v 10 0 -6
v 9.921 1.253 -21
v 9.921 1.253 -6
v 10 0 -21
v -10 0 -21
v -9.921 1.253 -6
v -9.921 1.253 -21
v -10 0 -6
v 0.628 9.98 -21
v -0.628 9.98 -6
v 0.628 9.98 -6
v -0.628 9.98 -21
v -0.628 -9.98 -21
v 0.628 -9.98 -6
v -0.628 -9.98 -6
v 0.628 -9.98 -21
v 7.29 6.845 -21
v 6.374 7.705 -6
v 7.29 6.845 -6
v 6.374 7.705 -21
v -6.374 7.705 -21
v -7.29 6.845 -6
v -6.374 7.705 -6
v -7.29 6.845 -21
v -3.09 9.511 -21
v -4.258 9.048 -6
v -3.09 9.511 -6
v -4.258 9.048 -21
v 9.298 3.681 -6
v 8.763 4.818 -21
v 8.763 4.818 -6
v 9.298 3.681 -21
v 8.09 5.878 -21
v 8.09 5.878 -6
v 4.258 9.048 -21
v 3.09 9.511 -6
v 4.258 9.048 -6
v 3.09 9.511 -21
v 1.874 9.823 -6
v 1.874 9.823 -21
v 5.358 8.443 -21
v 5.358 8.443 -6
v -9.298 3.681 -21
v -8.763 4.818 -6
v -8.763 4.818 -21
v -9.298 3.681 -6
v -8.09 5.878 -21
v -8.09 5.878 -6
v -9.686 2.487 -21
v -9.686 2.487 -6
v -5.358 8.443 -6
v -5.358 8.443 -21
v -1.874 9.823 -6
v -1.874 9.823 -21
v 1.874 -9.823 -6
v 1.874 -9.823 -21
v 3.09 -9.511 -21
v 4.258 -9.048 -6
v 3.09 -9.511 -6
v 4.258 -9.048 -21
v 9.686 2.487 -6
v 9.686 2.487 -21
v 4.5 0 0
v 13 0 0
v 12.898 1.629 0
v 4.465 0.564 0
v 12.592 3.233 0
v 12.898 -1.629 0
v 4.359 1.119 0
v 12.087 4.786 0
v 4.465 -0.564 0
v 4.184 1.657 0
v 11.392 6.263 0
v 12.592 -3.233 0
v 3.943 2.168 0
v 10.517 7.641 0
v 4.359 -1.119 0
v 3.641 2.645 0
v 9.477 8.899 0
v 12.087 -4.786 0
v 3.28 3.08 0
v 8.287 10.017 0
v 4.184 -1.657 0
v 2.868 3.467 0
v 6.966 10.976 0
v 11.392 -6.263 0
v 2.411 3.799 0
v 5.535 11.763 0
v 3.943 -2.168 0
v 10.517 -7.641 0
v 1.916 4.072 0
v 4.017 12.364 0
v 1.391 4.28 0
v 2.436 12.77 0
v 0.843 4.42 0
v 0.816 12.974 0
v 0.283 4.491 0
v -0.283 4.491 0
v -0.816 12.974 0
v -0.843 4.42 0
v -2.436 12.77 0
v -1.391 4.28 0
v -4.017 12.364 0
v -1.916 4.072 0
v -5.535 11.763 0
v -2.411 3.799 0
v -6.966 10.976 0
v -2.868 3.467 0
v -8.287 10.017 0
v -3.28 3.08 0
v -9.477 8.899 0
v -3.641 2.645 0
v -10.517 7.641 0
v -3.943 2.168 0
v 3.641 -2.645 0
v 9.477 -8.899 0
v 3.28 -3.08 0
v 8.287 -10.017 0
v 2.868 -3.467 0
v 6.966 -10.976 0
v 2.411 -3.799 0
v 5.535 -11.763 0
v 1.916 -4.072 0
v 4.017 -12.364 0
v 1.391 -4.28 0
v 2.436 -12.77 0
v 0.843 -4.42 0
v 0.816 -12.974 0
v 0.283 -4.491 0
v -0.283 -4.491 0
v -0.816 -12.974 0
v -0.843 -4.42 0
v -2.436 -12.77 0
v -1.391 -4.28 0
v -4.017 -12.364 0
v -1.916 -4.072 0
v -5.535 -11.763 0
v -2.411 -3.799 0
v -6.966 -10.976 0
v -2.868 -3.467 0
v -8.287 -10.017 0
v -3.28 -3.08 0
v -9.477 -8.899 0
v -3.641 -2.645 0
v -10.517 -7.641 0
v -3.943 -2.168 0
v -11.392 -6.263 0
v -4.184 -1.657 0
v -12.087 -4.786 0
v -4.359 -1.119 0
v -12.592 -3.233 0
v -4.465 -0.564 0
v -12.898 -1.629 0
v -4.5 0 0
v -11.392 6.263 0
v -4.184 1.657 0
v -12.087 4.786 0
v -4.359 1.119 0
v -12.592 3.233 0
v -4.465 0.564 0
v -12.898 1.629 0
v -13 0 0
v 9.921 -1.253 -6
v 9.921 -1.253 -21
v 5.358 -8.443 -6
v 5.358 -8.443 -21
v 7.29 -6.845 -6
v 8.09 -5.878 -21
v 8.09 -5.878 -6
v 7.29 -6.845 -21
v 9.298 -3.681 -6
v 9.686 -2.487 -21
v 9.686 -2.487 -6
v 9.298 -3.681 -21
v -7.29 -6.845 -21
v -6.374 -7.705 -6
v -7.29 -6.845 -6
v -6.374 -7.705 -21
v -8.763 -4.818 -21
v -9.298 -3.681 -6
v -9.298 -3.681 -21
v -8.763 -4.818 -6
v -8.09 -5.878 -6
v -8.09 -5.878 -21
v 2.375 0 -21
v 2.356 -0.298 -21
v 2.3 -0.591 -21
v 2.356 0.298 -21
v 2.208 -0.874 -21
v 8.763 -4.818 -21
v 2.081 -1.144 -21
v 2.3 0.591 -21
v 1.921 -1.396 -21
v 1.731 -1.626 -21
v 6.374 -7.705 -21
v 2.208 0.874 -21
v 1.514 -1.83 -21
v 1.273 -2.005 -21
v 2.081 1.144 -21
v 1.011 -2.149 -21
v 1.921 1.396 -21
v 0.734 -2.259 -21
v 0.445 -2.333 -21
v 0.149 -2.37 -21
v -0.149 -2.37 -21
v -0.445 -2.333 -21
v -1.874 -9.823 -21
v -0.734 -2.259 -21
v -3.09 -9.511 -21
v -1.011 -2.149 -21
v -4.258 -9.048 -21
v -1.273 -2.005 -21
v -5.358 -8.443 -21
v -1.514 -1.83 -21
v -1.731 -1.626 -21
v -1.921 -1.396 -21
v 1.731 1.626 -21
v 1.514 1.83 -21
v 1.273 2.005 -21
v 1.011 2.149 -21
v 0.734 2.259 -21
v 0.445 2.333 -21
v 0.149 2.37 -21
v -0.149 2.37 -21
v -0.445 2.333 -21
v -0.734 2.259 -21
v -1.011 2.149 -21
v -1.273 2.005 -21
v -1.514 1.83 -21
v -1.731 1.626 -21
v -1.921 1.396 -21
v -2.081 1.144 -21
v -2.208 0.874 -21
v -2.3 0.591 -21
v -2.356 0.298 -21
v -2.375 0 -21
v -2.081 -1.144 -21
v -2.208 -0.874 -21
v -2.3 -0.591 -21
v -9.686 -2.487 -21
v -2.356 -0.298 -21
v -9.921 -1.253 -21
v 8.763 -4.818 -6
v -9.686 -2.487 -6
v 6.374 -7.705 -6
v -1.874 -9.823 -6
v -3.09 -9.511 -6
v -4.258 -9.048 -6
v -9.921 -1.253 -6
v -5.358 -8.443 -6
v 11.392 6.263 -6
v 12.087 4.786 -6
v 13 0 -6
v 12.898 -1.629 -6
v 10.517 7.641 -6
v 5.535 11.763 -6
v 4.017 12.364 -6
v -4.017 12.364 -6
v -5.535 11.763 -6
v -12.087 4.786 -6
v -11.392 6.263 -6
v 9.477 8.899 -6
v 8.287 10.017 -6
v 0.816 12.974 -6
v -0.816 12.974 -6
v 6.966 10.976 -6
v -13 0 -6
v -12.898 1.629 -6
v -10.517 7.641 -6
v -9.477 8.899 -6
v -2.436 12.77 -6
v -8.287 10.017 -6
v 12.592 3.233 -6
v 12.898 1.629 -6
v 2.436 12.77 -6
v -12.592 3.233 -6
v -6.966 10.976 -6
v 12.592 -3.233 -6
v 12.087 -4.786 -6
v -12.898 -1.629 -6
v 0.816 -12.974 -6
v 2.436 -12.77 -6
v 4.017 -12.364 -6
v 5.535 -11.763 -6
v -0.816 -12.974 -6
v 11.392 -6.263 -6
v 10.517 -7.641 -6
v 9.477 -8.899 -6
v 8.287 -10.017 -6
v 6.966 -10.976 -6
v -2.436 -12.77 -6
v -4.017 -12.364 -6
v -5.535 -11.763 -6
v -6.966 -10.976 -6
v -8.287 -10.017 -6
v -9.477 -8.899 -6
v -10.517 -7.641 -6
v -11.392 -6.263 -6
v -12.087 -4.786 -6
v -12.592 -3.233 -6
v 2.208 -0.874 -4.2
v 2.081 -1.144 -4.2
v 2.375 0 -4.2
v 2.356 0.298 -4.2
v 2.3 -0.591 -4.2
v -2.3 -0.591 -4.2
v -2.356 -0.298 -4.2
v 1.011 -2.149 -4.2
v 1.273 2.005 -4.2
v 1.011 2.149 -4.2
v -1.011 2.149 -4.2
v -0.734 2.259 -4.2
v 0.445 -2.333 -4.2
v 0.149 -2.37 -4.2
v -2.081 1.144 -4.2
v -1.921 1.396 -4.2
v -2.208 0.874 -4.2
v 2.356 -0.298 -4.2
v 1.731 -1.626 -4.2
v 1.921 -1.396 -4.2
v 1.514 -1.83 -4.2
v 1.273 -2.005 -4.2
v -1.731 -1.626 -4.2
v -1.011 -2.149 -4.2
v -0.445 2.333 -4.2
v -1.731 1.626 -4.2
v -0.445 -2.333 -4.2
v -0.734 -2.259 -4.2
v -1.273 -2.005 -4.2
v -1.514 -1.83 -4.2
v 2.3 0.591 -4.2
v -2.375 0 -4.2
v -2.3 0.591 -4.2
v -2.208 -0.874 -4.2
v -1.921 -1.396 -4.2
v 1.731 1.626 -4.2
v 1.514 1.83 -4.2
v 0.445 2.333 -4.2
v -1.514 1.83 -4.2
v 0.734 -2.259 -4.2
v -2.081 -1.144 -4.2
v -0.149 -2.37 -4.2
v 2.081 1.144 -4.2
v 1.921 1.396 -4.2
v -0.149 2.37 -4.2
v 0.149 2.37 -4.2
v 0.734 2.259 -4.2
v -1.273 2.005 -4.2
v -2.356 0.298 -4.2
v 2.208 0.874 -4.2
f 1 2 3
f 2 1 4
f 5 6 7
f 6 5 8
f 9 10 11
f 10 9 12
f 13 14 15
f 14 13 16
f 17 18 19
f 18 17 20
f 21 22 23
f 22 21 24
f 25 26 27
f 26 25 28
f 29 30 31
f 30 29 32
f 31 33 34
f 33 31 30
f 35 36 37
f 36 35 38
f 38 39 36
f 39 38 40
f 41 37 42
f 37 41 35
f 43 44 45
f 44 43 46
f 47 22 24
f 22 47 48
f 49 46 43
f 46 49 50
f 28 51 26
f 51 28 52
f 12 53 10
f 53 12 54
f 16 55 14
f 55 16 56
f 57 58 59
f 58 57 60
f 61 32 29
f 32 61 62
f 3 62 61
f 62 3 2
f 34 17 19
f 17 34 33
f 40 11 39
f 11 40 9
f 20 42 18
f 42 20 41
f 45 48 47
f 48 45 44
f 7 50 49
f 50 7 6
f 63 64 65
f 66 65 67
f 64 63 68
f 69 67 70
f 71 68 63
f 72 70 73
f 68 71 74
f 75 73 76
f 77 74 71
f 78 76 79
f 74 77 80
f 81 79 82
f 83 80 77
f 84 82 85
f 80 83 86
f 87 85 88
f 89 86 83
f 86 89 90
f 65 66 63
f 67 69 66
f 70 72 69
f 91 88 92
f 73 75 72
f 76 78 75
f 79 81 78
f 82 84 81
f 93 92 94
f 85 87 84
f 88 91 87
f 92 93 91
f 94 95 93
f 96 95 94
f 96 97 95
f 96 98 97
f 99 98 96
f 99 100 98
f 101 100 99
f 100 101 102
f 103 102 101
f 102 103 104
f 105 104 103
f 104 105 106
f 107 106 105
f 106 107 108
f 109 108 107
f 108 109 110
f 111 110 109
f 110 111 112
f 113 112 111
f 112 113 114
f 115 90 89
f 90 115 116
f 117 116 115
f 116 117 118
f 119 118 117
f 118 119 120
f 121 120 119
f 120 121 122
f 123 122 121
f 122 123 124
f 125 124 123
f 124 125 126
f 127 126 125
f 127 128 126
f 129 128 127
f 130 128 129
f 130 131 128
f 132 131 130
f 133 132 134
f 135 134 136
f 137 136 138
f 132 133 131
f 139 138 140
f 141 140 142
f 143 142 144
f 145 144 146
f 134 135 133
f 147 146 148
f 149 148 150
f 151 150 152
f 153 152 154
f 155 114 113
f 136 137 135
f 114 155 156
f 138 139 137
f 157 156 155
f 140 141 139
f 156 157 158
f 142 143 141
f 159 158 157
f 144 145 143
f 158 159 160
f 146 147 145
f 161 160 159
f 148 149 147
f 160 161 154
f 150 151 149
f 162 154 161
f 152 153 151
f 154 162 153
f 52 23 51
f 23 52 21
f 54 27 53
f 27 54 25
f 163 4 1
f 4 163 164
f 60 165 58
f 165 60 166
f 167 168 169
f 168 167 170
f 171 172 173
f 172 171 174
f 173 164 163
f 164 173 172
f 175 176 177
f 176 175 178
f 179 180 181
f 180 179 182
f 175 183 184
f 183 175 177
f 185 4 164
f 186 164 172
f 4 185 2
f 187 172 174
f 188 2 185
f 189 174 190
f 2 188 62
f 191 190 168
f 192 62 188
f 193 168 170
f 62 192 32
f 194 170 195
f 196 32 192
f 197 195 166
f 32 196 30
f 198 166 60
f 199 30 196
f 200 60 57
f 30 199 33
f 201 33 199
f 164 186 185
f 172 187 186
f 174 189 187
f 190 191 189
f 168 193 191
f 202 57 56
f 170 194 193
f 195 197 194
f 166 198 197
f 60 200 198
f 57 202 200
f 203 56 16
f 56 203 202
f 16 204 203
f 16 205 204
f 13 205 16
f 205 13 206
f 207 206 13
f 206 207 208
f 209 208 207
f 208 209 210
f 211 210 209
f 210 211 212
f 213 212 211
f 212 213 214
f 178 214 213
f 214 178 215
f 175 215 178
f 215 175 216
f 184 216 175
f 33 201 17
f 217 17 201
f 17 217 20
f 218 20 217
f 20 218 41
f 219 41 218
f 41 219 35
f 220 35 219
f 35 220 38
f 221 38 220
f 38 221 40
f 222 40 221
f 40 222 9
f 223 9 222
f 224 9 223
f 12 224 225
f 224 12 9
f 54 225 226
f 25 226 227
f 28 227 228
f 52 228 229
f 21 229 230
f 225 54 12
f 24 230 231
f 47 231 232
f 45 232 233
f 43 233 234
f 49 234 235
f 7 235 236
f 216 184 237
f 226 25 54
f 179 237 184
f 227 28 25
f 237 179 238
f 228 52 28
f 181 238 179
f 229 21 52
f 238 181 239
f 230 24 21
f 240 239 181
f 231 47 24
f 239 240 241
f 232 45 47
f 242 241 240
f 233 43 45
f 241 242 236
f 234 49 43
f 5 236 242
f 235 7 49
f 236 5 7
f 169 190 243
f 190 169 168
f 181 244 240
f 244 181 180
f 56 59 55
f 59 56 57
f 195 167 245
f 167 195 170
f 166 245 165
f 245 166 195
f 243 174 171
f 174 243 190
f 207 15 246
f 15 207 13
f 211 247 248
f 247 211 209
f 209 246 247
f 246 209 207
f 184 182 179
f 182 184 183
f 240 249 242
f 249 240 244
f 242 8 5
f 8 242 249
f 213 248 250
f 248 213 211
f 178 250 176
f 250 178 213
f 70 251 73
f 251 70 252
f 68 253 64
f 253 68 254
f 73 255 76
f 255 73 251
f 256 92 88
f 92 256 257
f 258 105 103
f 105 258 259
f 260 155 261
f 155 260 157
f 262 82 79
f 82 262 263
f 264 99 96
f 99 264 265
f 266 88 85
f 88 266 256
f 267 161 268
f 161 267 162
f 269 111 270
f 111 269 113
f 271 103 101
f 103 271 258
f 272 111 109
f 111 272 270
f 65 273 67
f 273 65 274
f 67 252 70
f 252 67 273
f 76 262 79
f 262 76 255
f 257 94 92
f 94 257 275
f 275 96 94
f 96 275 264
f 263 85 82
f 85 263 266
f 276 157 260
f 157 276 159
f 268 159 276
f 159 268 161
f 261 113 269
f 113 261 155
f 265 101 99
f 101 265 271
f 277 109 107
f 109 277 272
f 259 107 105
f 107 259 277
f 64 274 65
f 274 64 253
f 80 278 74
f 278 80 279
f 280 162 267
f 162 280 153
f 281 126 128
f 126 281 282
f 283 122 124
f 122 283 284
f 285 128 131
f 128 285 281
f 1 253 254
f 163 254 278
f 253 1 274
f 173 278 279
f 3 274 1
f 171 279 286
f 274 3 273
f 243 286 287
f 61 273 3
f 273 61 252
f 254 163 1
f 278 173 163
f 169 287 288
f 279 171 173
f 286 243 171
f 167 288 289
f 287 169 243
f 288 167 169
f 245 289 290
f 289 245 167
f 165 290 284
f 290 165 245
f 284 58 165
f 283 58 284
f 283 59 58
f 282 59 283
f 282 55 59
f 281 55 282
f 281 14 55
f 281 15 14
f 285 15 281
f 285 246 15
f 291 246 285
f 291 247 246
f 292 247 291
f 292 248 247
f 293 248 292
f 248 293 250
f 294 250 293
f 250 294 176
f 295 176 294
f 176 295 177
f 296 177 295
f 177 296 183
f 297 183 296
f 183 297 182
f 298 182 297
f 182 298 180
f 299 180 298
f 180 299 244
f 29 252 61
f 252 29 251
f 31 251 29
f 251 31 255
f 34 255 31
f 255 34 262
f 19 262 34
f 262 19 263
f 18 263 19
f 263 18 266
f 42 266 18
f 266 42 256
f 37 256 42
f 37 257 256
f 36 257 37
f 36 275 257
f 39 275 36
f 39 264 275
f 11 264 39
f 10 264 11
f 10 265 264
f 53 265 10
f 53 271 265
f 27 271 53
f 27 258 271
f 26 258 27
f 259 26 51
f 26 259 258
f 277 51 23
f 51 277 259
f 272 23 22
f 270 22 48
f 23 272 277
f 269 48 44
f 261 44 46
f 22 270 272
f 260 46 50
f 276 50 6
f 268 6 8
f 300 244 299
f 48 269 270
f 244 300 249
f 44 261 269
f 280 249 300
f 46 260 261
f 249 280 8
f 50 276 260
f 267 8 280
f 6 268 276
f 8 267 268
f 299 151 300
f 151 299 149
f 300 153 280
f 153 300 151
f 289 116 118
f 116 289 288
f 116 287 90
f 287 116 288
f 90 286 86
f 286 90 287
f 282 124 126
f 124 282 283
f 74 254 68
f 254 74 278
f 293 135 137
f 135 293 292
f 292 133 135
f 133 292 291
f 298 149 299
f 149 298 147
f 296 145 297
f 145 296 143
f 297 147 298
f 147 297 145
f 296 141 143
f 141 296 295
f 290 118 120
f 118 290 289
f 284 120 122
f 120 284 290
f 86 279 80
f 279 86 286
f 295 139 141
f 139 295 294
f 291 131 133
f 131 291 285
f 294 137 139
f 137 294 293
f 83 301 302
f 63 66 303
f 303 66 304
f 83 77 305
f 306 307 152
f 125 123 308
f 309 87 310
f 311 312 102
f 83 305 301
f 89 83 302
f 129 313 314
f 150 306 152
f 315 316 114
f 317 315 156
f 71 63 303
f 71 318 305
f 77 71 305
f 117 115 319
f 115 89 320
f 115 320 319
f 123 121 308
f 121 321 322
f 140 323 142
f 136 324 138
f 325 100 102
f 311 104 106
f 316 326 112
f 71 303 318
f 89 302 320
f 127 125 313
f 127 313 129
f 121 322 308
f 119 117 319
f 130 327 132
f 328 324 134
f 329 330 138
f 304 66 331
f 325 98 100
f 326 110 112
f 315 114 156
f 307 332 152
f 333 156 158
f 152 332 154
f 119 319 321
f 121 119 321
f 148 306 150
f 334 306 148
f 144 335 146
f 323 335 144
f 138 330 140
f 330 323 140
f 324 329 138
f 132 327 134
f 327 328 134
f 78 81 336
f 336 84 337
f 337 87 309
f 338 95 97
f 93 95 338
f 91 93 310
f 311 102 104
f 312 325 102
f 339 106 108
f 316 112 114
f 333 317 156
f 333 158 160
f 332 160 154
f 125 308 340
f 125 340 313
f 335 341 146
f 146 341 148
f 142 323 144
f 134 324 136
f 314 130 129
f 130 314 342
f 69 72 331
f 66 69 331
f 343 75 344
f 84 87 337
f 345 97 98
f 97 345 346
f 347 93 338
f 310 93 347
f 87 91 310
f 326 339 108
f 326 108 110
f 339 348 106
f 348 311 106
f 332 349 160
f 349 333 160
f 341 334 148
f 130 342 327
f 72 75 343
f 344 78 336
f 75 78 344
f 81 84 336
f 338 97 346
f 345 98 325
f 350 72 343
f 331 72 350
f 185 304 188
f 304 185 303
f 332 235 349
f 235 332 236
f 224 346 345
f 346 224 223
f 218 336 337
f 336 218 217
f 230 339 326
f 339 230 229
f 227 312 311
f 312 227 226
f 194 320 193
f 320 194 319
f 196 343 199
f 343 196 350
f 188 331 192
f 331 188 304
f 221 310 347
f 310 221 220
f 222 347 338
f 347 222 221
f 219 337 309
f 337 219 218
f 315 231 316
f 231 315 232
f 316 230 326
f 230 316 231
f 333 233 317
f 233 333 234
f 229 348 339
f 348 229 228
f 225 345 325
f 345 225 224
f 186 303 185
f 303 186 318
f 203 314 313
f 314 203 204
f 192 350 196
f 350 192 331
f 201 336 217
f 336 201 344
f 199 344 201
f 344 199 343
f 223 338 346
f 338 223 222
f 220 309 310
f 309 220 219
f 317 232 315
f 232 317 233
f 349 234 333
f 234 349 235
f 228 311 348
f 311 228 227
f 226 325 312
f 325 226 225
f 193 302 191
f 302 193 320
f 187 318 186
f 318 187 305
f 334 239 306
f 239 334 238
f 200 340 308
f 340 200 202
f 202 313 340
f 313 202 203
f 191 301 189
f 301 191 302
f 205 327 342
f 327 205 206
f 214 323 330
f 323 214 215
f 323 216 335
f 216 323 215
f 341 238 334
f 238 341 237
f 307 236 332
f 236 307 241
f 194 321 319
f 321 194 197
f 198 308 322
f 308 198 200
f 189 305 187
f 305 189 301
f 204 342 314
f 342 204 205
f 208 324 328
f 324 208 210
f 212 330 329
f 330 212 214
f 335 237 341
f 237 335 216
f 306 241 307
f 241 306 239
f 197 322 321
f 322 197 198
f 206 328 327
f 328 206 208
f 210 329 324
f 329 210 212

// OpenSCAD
$fn = 50;


difference() {
	union() {
		translate(v = [0, 0, -21.0000000000]) {
			cylinder(h = 21, r = 10.0000000000);
		}
		translate(v = [0, 0, -6.0000000000]) {
			cylinder(h = 6, r = 13.0000000000);
		}
	}
	union() {
		translate(v = [0, 0, 0]) {
			rotate(a = [0, 0, 0]) {
				difference() {
					union() {
						#translate(v = [0, 0, -21.0000000000]) {
							cylinder(h = 21, r = 2.2500000000);
						}
						#translate(v = [0, 0, -4.2000000000]) {
							cylinder(h = 4.2000000000, r = 10.0000000000, r1 = 2.3750000000, r2 = 4.5000000000);
						}
						#translate(v = [0, 0, -21.0000000000]) {
							cylinder(h = 21, r = 2.3750000000);
						}
						#translate(v = [0, 0, -21.0000000000]) {
							cylinder(h = 21, r = 2.2500000000);
						}
					}
					union();
				}
			}
		}
	}
}
